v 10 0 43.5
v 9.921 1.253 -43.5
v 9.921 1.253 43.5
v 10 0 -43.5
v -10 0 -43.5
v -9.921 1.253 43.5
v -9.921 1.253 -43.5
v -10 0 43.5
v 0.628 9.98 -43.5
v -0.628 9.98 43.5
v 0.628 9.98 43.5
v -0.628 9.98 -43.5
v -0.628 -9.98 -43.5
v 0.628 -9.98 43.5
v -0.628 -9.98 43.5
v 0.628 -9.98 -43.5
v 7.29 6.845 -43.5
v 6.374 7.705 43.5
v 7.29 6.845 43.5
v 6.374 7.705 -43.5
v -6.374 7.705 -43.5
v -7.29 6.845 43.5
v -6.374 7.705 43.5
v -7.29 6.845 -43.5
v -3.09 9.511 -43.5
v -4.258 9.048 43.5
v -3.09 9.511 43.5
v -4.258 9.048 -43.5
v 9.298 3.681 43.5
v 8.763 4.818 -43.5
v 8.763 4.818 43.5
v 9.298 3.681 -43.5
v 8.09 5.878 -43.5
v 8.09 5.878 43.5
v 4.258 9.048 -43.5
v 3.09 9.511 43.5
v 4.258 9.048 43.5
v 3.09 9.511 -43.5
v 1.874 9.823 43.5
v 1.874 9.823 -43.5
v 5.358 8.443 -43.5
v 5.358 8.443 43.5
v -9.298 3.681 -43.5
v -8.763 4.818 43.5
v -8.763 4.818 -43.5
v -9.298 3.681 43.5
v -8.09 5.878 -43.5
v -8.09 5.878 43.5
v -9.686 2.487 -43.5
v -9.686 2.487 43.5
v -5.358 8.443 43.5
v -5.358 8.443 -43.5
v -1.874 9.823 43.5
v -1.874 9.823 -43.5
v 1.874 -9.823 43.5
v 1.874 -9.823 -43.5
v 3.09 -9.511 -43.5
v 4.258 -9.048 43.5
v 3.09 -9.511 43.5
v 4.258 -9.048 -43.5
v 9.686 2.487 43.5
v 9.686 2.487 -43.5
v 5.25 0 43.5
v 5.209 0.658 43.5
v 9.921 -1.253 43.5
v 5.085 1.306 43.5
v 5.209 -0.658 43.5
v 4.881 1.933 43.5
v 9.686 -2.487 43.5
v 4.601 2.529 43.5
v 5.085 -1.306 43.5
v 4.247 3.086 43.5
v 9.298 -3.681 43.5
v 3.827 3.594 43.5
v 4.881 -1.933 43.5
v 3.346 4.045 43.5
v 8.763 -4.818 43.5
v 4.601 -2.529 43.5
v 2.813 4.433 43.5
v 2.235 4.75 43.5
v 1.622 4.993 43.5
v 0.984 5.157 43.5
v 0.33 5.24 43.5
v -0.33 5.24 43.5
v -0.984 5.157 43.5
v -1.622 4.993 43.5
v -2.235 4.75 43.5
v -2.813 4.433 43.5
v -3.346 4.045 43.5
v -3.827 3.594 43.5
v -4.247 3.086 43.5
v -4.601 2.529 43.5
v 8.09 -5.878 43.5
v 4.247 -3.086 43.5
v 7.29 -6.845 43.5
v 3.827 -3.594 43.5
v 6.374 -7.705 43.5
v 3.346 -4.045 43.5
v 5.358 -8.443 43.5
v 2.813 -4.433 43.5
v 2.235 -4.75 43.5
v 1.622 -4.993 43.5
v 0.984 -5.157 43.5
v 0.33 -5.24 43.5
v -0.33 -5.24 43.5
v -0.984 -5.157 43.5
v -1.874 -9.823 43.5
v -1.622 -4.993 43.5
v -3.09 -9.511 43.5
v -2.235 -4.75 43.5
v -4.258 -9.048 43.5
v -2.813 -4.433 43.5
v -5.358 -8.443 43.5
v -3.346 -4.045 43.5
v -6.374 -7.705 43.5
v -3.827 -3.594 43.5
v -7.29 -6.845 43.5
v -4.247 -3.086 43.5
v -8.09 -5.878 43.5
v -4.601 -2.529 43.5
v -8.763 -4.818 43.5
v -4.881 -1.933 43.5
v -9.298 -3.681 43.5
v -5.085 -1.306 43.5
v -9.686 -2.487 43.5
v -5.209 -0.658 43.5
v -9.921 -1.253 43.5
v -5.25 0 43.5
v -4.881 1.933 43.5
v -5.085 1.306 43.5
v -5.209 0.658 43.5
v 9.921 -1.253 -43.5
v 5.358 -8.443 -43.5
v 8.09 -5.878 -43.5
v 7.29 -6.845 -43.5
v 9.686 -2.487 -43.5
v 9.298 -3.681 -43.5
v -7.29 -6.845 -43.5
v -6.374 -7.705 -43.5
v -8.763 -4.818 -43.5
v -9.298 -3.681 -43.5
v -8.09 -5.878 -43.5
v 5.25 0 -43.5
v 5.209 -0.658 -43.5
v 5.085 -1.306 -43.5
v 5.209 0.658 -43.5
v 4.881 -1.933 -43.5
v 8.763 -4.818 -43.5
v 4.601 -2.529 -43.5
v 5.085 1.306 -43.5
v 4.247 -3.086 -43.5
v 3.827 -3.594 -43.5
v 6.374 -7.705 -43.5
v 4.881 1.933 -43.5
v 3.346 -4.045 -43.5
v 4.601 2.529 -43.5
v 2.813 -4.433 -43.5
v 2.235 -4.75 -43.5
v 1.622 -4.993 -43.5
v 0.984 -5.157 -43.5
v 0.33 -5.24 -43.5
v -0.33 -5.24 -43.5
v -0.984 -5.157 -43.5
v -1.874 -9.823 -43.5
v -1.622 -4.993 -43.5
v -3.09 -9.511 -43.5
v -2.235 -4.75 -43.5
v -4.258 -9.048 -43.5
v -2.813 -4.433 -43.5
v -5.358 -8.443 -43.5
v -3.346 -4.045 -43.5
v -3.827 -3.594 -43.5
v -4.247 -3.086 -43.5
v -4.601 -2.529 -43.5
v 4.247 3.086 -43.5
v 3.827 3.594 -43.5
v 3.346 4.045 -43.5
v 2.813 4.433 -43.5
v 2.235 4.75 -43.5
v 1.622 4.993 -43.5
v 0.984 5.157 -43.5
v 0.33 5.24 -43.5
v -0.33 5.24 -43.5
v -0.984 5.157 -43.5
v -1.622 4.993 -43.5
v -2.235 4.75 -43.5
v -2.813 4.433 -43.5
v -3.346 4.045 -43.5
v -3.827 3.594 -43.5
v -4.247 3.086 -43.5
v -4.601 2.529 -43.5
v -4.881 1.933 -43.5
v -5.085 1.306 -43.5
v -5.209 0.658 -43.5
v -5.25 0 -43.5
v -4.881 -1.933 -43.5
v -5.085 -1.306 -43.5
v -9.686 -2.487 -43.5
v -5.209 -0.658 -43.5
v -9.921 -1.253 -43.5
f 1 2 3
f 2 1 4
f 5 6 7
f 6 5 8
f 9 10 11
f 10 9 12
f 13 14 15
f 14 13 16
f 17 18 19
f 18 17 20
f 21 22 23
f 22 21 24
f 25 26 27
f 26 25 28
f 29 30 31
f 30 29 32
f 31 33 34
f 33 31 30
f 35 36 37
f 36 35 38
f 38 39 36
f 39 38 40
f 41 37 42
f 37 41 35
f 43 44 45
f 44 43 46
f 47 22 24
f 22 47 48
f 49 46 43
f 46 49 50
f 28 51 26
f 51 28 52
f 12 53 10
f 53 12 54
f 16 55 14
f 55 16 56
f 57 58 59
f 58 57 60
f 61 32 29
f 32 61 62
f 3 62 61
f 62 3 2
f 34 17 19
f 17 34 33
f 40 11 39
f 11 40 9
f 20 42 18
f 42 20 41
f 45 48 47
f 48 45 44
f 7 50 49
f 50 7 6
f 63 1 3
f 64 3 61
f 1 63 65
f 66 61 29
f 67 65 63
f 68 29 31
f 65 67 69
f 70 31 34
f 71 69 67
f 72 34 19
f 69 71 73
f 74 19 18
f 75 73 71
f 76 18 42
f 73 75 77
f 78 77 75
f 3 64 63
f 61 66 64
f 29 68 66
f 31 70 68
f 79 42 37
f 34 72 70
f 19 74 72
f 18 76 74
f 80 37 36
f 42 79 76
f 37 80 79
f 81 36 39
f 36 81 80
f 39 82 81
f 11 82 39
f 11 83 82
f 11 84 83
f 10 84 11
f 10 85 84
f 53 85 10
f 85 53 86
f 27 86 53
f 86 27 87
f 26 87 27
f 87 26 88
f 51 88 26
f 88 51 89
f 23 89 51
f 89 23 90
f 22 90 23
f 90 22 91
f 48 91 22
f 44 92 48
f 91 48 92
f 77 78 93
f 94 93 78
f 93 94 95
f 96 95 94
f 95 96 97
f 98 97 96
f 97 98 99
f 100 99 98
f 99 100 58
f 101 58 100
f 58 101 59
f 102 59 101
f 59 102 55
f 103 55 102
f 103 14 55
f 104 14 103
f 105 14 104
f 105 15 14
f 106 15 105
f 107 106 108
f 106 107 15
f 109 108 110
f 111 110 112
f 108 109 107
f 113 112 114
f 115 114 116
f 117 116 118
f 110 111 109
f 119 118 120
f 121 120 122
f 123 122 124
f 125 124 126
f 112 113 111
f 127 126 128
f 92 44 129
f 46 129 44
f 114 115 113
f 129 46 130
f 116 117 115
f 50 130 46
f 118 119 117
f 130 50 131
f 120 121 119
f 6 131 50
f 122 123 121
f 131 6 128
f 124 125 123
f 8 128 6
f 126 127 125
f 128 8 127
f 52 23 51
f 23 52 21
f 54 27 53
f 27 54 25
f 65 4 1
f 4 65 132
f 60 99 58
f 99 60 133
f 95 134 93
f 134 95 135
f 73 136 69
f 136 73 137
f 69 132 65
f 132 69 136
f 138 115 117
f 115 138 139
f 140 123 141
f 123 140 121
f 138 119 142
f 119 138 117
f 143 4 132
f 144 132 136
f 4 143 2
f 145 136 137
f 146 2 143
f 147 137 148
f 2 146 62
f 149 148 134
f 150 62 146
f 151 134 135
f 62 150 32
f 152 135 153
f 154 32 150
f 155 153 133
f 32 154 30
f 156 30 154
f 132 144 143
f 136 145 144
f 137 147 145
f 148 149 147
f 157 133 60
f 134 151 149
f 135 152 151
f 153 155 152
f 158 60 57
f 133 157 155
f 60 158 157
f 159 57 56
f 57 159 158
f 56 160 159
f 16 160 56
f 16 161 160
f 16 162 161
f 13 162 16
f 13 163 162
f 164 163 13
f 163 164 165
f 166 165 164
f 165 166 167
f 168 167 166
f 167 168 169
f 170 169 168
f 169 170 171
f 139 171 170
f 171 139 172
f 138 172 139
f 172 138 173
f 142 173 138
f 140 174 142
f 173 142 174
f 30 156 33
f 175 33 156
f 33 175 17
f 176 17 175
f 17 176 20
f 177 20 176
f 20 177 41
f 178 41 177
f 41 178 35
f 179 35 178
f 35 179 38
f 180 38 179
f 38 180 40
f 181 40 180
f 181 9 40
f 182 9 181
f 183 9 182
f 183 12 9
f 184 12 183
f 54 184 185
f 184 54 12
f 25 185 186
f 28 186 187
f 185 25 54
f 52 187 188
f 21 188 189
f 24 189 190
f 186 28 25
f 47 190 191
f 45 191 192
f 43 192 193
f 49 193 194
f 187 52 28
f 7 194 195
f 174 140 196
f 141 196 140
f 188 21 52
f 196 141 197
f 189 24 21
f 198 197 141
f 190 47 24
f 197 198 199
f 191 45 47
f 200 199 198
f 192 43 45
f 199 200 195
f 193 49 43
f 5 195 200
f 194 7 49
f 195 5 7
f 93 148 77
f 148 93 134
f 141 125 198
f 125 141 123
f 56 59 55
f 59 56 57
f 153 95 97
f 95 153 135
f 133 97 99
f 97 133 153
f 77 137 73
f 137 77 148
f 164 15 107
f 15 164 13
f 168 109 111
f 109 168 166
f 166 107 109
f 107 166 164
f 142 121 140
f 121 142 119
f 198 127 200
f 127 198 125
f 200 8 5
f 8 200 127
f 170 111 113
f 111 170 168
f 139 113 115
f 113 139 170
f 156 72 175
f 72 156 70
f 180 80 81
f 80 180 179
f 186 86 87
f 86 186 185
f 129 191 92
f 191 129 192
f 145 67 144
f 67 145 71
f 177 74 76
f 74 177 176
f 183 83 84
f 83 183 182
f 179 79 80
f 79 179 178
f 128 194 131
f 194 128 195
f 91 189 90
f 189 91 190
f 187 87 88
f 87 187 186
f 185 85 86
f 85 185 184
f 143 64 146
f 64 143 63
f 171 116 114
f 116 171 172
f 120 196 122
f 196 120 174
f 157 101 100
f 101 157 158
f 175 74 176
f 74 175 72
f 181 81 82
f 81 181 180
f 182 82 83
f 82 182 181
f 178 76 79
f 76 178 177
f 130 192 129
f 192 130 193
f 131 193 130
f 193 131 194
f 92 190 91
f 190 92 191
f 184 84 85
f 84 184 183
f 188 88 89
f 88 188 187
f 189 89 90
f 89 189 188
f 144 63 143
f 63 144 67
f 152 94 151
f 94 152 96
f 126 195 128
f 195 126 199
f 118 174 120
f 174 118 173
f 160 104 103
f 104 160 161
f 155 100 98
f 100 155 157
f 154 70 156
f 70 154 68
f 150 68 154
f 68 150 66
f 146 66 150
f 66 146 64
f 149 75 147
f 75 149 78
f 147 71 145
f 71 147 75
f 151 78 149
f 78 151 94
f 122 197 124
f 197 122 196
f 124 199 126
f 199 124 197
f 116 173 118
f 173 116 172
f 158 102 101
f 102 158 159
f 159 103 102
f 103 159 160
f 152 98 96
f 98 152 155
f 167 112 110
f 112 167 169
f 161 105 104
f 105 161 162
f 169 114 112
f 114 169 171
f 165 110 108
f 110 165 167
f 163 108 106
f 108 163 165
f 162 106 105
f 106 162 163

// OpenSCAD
$fn = 50;


difference() {
	union() {
		translate(v = [0, 0, -43.5000000000]) {
			cylinder(h = 87, r = 10.0000000000);
		}
	}
	union() {
		translate(v = [0, 0, -100.0000000000]) {
			cylinder(h = 200, r = 5.2500000000);
		}
	}
}
